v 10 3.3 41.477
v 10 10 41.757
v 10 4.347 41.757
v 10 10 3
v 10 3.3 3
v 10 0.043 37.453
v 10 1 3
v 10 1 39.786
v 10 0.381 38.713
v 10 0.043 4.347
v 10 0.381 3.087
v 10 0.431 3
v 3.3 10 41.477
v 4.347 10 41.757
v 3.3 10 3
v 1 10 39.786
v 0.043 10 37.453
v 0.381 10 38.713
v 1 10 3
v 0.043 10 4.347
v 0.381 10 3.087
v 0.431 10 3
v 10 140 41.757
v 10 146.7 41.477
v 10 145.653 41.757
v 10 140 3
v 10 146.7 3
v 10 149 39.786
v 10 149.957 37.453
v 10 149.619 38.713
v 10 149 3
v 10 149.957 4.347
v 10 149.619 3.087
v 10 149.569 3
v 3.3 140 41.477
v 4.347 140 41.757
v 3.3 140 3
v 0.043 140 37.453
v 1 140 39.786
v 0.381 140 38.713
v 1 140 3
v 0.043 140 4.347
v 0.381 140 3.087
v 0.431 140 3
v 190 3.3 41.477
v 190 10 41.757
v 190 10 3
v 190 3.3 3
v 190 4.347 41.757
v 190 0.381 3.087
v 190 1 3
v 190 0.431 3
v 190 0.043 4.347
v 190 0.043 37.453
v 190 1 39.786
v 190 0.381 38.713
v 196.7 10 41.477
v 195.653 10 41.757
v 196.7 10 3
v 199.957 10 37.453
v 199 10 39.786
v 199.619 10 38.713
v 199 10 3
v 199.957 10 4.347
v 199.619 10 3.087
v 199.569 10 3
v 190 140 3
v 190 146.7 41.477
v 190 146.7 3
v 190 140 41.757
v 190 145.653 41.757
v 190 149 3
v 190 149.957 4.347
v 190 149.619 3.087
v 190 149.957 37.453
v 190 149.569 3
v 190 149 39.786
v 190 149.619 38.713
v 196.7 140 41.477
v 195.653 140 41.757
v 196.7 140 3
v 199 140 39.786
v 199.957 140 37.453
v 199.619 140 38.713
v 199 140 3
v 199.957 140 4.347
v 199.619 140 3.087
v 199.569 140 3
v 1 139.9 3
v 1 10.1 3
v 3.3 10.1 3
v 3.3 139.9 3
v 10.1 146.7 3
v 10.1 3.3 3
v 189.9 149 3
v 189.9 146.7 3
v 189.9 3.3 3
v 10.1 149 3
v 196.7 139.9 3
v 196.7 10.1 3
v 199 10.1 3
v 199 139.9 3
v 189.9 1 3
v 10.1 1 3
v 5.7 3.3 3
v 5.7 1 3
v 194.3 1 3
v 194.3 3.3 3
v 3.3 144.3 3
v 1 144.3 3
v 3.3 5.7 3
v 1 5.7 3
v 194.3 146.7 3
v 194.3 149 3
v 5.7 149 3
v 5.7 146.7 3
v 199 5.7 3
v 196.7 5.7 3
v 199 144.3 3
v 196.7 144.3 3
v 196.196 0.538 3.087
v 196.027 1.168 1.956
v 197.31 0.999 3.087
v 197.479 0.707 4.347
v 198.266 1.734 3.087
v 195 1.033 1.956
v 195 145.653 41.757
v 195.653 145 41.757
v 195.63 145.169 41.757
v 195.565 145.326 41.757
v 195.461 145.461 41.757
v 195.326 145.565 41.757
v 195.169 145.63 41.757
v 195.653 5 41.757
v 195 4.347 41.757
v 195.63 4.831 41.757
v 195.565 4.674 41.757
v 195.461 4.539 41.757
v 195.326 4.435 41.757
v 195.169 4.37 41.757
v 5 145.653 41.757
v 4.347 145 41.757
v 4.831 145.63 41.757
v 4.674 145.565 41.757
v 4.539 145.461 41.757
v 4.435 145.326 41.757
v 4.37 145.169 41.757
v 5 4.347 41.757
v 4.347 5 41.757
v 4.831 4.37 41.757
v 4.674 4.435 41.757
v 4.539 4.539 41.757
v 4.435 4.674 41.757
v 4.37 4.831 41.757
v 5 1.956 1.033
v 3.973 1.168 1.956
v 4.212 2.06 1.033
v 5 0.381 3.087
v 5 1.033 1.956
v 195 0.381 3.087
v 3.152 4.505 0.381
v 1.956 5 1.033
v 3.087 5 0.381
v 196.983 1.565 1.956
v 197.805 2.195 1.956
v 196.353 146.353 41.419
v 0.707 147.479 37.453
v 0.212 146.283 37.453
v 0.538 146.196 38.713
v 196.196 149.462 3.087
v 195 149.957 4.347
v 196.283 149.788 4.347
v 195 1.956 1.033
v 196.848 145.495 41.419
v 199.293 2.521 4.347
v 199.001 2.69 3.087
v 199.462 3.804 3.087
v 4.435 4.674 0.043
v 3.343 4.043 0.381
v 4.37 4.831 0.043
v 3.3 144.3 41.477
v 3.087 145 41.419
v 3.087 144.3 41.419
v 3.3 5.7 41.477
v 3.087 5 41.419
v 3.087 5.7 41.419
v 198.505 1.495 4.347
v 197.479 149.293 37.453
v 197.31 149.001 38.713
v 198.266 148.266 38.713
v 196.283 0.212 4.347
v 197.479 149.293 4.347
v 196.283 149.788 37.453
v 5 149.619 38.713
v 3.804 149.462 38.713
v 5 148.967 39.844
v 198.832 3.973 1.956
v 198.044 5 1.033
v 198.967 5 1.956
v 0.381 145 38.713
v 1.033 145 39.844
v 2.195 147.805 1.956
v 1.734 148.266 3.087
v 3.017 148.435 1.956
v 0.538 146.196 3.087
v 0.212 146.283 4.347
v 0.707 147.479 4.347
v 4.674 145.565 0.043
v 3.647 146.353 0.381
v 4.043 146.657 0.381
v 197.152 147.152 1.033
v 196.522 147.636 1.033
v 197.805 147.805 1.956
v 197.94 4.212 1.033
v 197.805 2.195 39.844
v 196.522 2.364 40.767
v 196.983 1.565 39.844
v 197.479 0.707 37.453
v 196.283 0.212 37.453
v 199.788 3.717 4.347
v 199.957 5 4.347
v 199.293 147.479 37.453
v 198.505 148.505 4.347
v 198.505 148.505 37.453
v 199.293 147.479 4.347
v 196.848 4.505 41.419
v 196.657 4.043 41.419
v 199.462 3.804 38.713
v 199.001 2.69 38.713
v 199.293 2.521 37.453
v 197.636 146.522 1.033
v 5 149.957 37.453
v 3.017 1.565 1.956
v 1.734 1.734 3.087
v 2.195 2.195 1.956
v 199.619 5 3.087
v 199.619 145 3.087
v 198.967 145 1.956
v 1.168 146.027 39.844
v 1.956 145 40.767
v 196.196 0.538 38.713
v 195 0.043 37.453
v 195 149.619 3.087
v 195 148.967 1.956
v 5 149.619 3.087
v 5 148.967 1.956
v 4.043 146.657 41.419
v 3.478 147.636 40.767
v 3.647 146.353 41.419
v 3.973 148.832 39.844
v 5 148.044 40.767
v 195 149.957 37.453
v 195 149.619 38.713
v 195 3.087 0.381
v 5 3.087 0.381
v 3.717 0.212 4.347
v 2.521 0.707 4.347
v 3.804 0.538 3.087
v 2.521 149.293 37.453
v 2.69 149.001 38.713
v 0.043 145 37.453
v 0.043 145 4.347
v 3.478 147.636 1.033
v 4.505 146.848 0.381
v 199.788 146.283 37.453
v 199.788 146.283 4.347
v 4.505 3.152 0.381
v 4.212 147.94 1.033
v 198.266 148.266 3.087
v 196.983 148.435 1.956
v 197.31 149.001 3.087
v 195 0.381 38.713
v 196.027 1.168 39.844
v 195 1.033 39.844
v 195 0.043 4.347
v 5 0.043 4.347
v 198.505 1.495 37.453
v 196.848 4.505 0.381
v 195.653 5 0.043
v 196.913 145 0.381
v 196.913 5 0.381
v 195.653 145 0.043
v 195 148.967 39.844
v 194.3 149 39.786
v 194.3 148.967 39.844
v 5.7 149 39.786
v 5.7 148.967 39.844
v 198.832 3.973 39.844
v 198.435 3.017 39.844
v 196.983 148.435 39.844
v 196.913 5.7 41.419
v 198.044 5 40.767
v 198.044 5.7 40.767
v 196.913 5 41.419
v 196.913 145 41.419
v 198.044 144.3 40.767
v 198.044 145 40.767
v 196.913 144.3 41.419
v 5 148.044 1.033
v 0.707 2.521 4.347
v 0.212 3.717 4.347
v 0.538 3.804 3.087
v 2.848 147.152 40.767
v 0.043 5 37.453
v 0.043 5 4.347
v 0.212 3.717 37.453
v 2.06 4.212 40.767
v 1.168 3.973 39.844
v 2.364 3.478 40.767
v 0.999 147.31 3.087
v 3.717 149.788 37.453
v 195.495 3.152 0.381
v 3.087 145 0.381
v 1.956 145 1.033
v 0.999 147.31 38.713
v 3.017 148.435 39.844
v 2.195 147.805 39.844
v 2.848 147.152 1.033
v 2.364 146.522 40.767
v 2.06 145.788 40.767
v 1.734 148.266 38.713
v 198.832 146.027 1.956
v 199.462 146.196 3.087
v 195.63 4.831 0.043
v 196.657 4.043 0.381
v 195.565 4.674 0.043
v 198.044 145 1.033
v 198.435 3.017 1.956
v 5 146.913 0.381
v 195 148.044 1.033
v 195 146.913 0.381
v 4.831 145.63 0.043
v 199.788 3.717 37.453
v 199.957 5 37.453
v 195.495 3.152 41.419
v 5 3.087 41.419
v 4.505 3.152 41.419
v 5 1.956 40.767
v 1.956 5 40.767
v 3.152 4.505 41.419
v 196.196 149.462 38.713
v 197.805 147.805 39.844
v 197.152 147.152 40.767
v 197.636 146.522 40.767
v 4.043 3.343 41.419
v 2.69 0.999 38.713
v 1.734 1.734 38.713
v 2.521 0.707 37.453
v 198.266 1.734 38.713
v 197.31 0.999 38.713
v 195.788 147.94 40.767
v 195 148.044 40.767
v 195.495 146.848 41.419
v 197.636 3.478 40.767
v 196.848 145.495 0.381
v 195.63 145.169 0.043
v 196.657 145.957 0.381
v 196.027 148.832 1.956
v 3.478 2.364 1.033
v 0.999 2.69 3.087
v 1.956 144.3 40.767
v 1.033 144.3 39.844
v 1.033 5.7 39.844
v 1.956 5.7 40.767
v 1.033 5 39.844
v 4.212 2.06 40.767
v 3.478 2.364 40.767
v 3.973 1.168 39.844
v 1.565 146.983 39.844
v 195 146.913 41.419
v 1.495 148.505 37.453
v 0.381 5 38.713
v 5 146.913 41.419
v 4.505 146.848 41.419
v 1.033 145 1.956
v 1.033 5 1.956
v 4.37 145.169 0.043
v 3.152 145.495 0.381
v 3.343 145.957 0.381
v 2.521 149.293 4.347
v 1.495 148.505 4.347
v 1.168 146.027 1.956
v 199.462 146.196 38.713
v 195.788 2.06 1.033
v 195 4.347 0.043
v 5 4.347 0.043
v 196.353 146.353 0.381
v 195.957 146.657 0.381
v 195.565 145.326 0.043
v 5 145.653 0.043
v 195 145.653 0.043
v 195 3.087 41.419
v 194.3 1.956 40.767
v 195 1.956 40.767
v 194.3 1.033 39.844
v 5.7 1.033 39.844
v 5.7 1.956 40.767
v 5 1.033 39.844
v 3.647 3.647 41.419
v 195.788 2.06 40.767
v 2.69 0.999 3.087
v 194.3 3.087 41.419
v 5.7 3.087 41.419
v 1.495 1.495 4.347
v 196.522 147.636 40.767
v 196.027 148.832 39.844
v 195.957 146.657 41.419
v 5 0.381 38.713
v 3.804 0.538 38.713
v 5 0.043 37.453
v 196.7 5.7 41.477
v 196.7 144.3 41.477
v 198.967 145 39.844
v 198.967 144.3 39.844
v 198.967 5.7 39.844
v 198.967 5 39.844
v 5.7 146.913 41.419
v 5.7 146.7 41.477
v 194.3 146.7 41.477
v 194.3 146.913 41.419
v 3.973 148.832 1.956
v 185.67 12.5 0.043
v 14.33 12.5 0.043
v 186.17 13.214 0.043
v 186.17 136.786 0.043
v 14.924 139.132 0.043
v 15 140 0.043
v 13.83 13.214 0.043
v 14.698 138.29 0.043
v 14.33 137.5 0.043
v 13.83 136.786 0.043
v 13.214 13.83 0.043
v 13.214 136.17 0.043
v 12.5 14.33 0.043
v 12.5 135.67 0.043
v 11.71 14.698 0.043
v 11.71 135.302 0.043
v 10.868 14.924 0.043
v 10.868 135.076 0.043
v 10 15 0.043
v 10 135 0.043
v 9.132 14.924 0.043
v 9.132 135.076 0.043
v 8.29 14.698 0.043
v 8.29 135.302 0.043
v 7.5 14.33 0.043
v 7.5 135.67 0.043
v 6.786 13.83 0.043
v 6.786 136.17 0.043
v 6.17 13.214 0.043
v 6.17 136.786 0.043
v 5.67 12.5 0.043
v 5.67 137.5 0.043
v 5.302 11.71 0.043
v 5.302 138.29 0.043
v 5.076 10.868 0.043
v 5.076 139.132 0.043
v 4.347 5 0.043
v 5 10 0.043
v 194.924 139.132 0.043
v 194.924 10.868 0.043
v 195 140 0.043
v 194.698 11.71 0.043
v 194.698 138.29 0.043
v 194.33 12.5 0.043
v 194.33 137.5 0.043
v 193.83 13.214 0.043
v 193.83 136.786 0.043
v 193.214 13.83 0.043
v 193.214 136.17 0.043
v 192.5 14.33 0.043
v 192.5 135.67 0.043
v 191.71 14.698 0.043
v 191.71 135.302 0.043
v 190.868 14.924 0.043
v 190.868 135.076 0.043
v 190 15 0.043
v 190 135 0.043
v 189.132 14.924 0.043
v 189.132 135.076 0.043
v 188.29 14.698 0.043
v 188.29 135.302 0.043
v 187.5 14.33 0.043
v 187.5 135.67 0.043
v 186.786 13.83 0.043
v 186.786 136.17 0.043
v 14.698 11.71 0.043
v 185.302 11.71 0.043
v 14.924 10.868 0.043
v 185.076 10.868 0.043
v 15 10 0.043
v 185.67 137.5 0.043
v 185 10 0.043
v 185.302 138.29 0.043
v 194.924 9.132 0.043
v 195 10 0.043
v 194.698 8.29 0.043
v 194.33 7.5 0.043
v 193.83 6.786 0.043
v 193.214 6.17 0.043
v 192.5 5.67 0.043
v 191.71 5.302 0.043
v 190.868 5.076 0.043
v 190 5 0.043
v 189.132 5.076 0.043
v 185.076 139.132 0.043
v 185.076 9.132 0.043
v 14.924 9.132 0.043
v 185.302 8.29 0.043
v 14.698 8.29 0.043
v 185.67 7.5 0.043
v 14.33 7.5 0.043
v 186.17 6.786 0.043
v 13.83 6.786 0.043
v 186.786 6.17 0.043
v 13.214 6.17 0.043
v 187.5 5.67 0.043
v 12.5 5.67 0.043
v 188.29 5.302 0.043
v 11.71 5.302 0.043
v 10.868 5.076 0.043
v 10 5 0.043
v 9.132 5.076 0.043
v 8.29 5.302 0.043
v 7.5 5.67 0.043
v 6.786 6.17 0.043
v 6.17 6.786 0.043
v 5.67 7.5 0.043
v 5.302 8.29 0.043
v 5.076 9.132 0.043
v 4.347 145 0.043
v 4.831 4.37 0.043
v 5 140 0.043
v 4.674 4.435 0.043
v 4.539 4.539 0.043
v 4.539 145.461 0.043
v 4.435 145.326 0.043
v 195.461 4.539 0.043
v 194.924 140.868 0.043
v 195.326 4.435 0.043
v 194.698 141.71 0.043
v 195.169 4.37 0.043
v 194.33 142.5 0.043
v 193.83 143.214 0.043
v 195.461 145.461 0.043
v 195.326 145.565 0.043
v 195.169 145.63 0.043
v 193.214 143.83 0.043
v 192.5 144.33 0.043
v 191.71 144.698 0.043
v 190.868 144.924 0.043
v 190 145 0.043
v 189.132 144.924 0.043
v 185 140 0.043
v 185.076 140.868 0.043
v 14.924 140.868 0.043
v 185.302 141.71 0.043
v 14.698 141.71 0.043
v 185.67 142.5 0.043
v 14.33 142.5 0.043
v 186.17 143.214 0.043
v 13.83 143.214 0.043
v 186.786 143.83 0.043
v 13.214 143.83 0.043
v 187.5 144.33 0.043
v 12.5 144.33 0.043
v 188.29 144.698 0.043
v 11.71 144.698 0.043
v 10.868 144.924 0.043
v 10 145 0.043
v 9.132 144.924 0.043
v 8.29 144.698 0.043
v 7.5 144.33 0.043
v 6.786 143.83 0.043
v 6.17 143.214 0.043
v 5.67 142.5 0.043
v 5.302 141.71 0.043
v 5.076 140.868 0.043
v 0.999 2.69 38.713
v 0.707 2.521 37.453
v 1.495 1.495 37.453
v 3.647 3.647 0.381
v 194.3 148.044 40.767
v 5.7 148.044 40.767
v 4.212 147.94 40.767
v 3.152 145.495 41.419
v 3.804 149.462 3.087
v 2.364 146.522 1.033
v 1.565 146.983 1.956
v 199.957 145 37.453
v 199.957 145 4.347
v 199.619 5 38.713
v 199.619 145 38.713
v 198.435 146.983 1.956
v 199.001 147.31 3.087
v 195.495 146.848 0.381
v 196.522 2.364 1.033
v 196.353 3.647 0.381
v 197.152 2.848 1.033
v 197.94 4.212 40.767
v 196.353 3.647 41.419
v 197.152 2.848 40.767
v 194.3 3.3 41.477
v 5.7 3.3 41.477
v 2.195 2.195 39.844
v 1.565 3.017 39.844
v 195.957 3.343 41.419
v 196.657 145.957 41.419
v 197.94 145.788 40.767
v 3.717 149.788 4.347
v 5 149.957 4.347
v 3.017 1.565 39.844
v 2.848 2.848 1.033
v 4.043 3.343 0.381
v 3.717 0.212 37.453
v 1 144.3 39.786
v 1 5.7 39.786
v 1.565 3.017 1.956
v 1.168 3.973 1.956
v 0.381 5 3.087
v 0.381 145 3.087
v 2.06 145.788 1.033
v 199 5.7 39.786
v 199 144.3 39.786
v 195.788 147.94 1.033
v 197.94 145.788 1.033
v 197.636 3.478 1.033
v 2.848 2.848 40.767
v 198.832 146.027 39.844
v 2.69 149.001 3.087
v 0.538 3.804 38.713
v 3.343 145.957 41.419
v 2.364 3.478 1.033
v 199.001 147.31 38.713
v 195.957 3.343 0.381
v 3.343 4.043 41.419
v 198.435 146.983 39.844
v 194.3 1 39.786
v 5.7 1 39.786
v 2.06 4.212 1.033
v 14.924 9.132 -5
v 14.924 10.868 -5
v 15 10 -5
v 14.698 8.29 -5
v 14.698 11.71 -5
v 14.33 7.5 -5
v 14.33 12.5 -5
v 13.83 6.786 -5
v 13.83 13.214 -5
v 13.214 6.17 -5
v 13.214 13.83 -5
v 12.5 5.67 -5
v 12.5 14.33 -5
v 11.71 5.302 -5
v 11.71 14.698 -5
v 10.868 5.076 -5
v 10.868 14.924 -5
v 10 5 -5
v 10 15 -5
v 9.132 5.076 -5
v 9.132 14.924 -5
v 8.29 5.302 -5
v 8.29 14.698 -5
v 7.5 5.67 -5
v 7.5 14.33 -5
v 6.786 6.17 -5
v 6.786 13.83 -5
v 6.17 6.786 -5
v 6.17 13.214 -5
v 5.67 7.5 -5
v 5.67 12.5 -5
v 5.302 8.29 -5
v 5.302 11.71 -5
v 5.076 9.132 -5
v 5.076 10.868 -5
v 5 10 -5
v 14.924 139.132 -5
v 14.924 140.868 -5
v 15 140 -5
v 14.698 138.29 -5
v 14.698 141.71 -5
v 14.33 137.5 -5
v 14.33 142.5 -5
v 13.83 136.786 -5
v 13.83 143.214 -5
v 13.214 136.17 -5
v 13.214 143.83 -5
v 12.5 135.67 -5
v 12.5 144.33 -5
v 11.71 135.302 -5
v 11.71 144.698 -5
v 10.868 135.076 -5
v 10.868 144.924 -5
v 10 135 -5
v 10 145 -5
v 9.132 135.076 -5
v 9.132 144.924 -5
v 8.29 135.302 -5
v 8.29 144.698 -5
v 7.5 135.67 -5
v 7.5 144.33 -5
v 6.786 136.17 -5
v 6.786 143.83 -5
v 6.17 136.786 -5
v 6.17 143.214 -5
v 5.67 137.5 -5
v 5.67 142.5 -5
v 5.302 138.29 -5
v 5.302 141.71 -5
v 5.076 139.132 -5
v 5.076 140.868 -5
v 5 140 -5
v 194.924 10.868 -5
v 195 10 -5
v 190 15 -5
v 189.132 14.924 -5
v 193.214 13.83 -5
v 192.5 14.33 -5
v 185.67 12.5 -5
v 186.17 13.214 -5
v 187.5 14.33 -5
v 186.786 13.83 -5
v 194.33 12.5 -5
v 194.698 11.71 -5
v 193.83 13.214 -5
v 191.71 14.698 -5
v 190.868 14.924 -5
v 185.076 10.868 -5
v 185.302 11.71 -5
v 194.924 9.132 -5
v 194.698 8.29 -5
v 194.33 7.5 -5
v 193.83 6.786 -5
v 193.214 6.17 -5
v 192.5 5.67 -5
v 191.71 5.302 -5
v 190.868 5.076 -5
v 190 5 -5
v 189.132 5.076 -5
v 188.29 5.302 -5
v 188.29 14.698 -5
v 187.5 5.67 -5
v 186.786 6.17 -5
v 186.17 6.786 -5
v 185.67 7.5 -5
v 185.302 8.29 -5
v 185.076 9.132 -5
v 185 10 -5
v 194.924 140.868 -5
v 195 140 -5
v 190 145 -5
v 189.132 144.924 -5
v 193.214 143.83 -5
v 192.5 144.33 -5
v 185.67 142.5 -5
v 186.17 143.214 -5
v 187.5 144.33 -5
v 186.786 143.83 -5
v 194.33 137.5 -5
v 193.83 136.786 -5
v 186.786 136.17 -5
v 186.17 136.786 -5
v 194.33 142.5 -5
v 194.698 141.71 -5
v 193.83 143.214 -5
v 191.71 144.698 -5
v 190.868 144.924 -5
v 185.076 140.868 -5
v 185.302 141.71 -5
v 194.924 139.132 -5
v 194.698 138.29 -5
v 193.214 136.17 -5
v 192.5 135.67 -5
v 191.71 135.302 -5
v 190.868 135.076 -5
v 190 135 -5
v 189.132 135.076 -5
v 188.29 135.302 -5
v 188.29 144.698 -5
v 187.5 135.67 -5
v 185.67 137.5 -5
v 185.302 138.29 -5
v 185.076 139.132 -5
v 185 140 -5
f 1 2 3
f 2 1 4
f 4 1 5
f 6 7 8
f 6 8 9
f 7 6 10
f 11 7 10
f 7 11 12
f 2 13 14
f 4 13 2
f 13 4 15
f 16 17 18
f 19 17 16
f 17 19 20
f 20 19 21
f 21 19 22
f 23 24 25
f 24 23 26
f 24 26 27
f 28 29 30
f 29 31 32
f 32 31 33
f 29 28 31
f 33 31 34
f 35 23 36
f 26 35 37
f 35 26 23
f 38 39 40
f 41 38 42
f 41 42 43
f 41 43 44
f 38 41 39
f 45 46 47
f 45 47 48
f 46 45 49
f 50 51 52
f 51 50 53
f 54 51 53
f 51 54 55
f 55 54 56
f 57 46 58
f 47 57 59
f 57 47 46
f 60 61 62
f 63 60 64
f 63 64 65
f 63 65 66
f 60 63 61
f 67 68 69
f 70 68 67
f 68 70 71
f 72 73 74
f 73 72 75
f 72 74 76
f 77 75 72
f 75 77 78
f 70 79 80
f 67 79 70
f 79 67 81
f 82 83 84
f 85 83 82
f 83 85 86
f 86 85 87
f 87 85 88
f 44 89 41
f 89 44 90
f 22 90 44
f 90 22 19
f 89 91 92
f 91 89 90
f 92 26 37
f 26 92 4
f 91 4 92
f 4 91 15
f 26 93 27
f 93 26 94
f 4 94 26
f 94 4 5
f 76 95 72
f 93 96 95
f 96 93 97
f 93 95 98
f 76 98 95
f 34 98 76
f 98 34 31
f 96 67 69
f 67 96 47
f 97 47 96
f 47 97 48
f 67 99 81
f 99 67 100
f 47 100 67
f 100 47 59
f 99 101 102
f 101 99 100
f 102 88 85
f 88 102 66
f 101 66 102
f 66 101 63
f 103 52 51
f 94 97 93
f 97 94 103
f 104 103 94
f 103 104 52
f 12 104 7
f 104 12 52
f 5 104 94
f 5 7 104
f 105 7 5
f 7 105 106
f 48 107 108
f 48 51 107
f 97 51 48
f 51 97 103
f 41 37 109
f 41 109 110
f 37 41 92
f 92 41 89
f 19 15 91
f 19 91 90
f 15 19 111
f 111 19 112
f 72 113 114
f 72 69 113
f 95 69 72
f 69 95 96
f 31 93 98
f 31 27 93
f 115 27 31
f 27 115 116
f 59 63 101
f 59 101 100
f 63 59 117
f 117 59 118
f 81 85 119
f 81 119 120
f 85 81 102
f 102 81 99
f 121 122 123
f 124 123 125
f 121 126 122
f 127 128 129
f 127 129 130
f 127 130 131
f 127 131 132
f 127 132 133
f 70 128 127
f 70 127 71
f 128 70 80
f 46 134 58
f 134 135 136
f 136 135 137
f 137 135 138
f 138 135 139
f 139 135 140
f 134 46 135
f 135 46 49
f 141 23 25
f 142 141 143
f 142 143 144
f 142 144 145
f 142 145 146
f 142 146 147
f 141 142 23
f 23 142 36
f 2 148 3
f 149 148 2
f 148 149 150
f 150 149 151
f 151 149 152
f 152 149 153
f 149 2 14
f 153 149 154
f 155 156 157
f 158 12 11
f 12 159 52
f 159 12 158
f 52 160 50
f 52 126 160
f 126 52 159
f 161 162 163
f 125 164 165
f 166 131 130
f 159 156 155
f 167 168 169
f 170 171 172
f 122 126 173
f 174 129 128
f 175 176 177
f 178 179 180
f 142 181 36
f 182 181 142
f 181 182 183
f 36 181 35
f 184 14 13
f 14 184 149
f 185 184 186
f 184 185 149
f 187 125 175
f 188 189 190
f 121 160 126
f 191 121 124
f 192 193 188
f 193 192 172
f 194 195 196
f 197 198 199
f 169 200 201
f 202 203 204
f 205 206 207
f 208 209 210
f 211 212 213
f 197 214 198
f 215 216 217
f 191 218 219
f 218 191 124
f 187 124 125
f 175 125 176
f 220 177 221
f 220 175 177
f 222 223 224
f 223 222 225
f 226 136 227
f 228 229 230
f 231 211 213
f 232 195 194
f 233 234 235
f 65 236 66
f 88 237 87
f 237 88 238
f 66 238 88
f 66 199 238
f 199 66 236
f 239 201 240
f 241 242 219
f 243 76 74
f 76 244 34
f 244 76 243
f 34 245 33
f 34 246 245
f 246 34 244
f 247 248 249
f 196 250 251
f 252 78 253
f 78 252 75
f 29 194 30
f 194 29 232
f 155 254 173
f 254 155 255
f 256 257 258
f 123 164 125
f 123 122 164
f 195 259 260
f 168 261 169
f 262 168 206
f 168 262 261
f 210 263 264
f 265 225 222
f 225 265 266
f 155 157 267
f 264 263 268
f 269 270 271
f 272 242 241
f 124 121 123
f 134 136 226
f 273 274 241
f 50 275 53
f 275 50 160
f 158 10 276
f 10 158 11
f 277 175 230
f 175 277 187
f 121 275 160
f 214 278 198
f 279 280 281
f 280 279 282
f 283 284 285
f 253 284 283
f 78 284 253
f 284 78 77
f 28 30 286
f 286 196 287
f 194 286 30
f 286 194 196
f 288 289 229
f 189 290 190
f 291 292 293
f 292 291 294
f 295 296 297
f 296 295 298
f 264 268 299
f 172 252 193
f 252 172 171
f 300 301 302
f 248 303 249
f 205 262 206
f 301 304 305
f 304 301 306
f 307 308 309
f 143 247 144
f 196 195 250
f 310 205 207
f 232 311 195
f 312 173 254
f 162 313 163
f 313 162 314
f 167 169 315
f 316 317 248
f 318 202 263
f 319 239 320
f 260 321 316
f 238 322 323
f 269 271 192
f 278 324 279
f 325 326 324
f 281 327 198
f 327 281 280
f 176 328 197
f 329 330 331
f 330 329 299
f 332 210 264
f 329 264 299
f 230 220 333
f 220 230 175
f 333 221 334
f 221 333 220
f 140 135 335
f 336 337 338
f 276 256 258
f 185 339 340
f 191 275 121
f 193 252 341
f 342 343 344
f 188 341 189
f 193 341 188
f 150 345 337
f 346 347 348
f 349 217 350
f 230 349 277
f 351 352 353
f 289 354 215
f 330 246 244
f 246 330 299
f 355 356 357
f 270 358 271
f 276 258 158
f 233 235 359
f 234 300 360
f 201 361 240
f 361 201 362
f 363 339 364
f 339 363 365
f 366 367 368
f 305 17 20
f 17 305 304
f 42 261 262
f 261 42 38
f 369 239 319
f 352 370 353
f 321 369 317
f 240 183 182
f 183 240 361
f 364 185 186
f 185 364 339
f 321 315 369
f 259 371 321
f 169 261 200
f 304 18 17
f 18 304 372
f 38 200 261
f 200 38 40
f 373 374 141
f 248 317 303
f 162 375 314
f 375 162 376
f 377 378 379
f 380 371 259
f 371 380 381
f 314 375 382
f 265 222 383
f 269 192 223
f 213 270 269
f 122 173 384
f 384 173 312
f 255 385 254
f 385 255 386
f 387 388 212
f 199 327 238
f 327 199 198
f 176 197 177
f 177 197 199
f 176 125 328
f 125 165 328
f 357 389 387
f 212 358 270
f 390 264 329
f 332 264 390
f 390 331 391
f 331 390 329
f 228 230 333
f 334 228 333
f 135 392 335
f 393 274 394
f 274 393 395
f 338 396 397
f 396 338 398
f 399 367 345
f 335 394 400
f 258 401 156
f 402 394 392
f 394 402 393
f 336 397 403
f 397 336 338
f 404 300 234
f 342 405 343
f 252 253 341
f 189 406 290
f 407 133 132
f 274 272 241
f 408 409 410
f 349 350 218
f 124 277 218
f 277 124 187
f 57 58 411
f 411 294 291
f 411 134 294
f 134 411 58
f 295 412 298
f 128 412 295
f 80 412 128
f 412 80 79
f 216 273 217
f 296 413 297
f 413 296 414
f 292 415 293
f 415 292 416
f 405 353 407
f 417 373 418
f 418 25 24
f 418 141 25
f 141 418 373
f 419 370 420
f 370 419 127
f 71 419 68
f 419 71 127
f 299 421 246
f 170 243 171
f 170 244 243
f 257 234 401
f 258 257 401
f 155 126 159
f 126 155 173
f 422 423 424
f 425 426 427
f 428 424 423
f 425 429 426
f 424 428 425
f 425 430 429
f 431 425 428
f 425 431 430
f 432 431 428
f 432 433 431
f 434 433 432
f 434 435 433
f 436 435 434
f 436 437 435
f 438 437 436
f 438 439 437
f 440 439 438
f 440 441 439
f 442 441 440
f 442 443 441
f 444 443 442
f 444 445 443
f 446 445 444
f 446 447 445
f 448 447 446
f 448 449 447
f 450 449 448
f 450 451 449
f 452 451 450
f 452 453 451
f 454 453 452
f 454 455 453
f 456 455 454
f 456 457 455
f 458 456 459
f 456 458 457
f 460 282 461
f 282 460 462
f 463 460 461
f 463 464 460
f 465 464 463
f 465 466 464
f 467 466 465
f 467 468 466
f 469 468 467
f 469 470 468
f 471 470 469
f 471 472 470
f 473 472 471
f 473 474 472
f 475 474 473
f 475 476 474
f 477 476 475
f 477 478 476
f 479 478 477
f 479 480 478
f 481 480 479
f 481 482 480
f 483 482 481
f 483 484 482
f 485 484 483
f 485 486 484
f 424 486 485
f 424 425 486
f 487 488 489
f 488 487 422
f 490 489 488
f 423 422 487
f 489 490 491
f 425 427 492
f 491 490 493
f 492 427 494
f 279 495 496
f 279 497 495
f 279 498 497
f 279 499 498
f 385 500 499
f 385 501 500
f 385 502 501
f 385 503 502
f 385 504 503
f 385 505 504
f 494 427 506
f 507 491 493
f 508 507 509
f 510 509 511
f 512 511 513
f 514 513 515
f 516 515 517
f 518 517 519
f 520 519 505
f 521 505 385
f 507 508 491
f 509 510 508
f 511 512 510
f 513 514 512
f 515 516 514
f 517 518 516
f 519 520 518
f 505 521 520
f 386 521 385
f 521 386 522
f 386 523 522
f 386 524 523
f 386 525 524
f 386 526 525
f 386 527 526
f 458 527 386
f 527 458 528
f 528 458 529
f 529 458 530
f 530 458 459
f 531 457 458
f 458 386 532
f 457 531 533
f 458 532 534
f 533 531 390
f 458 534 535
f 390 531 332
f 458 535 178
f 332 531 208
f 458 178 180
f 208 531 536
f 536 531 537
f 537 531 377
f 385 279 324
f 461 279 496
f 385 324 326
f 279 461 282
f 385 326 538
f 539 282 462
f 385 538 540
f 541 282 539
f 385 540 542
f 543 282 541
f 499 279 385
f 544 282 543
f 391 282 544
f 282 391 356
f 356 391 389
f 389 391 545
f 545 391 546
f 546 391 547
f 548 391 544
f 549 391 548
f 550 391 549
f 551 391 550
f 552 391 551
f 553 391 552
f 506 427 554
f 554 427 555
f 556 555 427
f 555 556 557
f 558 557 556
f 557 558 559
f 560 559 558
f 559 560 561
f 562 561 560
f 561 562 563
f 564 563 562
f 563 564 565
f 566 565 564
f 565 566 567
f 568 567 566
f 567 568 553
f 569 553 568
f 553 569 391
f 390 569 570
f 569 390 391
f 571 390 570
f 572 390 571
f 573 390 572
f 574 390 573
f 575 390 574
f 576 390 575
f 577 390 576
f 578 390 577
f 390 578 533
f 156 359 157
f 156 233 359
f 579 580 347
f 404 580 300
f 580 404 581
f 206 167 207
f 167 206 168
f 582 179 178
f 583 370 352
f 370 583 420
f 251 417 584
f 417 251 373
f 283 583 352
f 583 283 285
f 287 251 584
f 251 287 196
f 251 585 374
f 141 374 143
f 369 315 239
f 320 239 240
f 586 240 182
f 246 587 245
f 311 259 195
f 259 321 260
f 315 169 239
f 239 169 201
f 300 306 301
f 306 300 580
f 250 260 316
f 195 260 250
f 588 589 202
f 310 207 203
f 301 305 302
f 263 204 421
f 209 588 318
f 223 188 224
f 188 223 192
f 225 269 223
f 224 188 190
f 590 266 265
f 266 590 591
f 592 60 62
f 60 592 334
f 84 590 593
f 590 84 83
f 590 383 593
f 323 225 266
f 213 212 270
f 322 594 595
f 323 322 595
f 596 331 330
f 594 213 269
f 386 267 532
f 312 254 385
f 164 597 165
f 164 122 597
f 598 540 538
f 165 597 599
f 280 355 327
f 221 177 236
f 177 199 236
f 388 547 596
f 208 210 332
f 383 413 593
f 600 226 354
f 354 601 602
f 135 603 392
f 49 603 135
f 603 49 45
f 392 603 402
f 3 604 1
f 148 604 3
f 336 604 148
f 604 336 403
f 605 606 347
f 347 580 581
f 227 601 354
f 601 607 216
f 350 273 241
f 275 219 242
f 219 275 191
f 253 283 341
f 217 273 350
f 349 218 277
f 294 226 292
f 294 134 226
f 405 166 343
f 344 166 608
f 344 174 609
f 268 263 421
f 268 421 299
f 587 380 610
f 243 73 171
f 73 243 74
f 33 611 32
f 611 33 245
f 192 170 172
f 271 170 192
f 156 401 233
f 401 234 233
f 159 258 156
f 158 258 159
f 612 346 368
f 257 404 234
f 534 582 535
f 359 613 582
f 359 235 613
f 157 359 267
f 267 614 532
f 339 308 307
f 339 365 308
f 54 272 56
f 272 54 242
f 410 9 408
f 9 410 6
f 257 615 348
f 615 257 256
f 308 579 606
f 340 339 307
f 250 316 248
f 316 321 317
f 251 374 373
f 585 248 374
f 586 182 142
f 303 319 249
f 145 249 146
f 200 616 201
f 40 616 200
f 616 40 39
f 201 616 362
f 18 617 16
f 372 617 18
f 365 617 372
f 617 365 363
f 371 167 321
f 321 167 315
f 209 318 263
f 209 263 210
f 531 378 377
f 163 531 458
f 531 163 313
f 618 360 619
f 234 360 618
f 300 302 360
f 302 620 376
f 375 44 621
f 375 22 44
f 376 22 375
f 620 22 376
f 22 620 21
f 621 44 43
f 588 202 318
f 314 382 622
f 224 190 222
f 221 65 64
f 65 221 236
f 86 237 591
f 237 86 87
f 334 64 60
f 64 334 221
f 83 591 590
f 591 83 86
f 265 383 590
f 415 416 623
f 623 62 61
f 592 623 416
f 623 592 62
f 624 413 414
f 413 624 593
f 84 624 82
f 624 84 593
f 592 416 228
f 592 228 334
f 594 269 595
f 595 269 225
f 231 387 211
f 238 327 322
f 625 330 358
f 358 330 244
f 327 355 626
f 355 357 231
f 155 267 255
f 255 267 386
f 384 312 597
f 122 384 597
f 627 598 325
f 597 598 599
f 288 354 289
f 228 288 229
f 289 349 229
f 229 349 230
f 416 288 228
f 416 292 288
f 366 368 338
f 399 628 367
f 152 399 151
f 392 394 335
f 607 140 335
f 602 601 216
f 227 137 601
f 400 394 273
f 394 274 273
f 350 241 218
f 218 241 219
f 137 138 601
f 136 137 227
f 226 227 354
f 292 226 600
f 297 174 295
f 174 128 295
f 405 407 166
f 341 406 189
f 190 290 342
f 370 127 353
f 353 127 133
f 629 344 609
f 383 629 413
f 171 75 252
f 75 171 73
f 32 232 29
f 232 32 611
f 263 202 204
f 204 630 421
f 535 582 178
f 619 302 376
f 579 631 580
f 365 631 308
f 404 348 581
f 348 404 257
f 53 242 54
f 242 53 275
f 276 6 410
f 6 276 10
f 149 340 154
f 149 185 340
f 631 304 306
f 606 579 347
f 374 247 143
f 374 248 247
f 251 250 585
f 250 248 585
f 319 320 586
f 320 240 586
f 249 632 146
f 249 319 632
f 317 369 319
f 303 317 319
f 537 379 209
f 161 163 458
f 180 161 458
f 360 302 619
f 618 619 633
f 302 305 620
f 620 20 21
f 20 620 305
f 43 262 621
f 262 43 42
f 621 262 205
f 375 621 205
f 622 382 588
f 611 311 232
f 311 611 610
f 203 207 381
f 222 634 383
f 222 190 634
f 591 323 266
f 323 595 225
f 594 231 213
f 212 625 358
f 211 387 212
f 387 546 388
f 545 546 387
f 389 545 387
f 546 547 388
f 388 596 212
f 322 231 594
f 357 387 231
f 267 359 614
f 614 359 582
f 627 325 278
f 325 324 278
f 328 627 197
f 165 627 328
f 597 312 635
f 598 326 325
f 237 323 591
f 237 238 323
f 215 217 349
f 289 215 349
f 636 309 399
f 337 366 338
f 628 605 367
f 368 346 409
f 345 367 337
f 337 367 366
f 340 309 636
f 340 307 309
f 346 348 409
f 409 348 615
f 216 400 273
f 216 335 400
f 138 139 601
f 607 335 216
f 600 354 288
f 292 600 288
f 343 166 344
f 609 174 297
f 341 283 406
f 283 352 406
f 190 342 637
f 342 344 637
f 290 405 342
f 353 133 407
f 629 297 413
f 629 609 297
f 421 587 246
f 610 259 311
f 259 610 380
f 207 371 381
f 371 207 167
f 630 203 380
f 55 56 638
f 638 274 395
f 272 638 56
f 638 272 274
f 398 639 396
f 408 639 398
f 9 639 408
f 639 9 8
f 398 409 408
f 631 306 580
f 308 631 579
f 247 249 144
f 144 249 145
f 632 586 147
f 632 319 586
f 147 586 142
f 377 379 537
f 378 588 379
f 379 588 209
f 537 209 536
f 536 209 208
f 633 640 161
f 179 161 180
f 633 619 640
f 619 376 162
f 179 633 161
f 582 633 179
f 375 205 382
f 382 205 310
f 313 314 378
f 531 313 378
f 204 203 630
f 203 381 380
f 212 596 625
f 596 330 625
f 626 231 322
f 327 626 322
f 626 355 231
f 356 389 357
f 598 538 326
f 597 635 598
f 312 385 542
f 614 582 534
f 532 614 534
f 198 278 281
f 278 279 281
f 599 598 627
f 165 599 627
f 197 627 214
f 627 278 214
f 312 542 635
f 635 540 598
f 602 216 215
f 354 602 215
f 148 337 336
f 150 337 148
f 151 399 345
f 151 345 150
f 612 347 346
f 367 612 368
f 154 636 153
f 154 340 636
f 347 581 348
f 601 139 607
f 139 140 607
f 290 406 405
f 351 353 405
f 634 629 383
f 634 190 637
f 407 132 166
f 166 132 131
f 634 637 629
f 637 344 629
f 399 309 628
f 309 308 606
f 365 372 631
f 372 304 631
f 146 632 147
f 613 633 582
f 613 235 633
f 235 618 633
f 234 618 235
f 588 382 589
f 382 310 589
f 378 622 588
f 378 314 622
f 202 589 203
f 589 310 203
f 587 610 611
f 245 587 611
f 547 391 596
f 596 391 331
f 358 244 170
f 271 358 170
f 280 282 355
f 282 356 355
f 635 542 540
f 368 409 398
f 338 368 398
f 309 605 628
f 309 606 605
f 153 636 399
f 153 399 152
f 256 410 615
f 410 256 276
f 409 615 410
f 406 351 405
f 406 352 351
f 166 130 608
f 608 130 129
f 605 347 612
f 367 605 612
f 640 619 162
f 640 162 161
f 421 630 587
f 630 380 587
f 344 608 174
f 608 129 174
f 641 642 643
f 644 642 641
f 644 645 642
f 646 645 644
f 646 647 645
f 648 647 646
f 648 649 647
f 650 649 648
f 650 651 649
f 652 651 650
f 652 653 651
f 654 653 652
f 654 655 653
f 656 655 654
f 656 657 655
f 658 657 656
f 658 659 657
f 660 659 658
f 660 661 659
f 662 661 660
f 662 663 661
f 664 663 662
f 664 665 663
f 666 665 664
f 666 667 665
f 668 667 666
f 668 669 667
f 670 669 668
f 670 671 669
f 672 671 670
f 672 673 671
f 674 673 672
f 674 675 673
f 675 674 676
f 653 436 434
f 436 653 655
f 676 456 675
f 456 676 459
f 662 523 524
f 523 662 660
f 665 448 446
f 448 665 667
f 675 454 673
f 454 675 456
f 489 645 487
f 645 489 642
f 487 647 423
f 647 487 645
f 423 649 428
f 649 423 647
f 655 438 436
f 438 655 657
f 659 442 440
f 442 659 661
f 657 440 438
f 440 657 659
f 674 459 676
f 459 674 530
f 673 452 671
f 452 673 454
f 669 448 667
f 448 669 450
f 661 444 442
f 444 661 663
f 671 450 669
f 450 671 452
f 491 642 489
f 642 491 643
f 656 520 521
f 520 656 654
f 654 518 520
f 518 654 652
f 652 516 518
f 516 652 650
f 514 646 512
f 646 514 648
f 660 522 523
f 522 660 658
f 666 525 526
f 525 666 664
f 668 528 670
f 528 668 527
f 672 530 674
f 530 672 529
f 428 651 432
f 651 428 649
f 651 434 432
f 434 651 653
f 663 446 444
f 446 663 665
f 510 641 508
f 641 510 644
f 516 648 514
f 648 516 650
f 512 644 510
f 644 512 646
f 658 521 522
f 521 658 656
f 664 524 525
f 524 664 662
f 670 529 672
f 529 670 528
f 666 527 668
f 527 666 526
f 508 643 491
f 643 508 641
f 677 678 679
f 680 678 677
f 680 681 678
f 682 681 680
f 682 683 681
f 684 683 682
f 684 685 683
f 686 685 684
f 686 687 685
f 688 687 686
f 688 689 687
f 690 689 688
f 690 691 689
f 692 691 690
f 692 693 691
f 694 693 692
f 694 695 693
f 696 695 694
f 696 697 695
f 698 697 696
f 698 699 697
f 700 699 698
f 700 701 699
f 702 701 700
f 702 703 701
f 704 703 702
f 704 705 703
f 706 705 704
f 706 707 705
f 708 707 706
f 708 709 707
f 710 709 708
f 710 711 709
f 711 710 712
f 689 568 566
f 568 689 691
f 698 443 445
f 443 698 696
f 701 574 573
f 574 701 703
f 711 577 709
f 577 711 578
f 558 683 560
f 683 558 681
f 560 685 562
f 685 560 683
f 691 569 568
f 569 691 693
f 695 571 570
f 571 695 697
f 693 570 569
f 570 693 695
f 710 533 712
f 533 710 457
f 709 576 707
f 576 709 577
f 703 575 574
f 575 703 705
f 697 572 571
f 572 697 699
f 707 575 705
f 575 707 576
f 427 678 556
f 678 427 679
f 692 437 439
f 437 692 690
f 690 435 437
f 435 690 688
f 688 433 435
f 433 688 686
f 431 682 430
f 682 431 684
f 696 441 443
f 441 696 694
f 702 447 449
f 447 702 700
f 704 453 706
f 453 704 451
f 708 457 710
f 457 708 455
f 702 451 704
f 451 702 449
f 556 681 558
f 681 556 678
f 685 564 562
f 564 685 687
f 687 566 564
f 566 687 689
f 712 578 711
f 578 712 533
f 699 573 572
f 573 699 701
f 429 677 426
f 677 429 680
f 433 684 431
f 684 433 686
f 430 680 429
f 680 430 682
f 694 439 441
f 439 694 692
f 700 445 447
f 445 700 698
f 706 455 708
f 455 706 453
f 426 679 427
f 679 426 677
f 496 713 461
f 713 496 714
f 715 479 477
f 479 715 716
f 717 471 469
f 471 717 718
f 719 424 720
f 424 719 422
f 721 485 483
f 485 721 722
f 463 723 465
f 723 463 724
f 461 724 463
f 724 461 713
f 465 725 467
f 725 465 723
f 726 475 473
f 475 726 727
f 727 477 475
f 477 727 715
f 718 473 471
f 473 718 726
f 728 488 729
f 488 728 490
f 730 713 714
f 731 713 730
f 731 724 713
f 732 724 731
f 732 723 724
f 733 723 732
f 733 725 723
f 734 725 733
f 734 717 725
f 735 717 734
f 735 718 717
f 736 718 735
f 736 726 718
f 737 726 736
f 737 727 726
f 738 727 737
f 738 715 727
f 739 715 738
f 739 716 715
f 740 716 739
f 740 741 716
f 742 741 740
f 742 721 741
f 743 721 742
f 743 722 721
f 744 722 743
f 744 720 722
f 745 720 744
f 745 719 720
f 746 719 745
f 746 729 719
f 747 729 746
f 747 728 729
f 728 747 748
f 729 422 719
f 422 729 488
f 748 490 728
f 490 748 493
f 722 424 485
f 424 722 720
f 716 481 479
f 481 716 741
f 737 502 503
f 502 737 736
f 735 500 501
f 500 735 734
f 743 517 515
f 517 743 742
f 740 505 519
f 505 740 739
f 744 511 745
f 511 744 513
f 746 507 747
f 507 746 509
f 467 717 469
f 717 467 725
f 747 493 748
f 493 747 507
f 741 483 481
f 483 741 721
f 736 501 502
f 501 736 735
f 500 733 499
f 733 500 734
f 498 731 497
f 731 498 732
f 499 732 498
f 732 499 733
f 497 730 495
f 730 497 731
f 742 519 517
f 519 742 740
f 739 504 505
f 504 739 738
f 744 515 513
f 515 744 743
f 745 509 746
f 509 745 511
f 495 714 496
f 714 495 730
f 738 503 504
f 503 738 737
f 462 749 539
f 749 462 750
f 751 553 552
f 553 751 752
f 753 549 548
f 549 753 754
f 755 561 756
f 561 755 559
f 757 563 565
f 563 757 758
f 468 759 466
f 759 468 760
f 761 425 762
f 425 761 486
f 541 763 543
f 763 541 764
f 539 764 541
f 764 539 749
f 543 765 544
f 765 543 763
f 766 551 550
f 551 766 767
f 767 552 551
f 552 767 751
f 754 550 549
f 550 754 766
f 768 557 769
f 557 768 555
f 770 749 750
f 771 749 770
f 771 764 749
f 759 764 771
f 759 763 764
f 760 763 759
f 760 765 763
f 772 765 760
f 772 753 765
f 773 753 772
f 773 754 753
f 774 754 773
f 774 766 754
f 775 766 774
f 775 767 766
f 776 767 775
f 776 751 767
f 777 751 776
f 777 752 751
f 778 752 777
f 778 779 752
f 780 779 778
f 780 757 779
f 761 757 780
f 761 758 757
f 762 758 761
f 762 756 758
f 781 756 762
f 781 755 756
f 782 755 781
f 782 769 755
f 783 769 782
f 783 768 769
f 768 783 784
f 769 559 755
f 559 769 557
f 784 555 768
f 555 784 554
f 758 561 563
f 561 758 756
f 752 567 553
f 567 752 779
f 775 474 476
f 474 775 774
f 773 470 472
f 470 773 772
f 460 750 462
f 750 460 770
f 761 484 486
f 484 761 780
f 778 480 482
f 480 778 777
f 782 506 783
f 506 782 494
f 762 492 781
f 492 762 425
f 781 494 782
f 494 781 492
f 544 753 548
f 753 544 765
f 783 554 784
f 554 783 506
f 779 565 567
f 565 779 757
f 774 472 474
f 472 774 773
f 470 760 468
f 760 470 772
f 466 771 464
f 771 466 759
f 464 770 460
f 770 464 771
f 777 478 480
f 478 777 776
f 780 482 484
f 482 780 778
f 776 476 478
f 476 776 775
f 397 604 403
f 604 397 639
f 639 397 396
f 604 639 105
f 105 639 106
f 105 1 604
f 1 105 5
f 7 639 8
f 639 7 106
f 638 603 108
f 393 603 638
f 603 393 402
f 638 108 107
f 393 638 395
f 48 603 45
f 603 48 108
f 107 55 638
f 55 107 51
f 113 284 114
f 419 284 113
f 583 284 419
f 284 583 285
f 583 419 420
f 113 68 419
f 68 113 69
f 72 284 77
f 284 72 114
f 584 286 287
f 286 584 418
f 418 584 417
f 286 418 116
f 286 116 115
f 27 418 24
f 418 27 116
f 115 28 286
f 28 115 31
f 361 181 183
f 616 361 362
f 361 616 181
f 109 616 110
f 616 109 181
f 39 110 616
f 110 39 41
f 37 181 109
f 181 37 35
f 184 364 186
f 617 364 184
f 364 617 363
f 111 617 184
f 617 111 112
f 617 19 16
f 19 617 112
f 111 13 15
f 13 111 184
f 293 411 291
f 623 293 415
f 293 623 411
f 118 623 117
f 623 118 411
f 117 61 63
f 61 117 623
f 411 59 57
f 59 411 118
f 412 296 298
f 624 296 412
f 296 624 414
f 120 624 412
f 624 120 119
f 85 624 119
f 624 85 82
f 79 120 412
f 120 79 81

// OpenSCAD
// file: params.scad
// =====================================================================
//  params.scad  -  Kabelbox, frei konfigurierbar (einzige Wahrheitsquelle)
//  Koordinaten: x=Breite, y=Tiefe (Front y=0, Rück y=box_d), z=Höhe.
//  4 Eckpfosten (flush) mit Nuten -> 4 entnehmbare Voronoi-Wände;
//  glatter Schiebedeckel von hinten; Füße; alles bündig.
// =====================================================================

/* [Maße] */
box_w = 200;   // Breite X (mm)
box_d = 150;   // Tiefe Y (mm)
box_h = 41.8;  // Höhe Z (mm, ohne Füße) -> 35 mm nutzbar (Boden bis Deckel)

/* [Kabellöcher je Wand] */
//  none = keins | left/center/right = Position (unten offener Schlitz)
cable_front = "none";   // [none:keins, left:links, center:mitte, right:rechts]
cable_back  = "right";  // [none:keins, left:links, center:mitte, right:rechts]  (1. Kiste)
cable_left  = "none";   // [none:keins, left:links, center:mitte, right:rechts]
cable_right = "right";  // [none:keins, left:links, center:mitte, right:rechts]  (1. Kiste)

// ---- Struktur -------------------------------------------------------
wall_t     = 3.0;   // Wandstärke (Außenfläche bündig)
floor_t    = 3.0;   // Bodenstärke
fillet_r   = 5.0;   // Kantenrundung R5 (wie Holder)
post_sz    = 10.0;  // Eckpfosten-Bein (X=Y), flush in der Ecke
foot_r     = 5.0;   // Fuß
foot_h     = 5.0;
foot_inset = 5.0;

// ---- Feder & Nut: Wand <-> Pfosten ----------------------------------
//  Feder (Rippe) sitzt hinter einer Front-Skin des Pfostens -> flush & in
//  Querrichtung gefangen (Prinzip wie Holder-Rückwand).
front_skin = 1.0;   // Pfosten-Skin vor der Feder (Außenseite)
tongue_d   = 4.0;   // Federtiefe in den Pfosten (Längsrichtung der Wand)
rail_clear = 0.3;   // Spiel Feder<->Nut
rail_lead  = 1.2;   // 45°-Einführfase unten an der Feder

// ---- Deckel (glatt, von hinten eingeschoben) ------------------------
//  Vorne/links/rechts: Lippe übergreift den Deckelrand (3-seitig gefangen);
//  Rückwand niedriger -> Deckel läuft drüber, schließt hinten bündig ab.
lid_t      = 2.5; // Deckeldicke
lid_lip_t  = 1.0; // Höhe/Überdeckung der Lippe über dem Deckelrand
lid_ov     = 3.0; // Lippen-Überstand nach innen (Deckel-Eingriff)
lid_clear  = 0.3; // Spiel Deckel

// ---- Kabelloch (unten offen, wie Zahnbürstenhalter) -----------------
cable_w = 12;   // Schlitzbreite (X entlang der Wand)
cable_h = 12;   // Oberkante des Schlitzes über dem Boden (Z)

// ---- Voronoi (Wand-Relief) ------------------------------------------
voro_seed  = 11;
voro_cell  = 14;    // Zellabstand Wand-Relief
voro_strut = 1.8;   // Stegbreite
relief_h   = 1.2;   // Reliefhöhe (erhaben)

// ---- abgeleitete Maße / Helfer (NICHT ändern) -----------------------
// lichte Spannweiten zwischen den Pfosten
span_w = box_w - 2*post_sz;   // Front/Rück-Wandlänge (X)
span_d = box_d - 2*post_sz;   // Links/Rechts-Wandlänge (Y)
wall_h = box_h - floor_t;     // Wandhöhe über dem Boden

$fn = 32;
// main file
// =====================================================================
//  box.scad  -  Rahmen der Kabelbox (bleibt fest):
//   gerundeter Boden + 4 Eckpfosten (flush) mit je 2 senkrechten Wand-Nuten,
//   4 Füße. Nuten liegen INNERHALB der Pfosten (Front-Skin) -> flush.
// =====================================================================
include <params.scad>

module rounded_block(w, d, h, r) {
    minkowski() {
        translate([r, r, r]) cube([w - 2*r, d - 2*r, h - 2*r]);
        sphere(r = r, $fn = 24);
    }
}

// Platziert local (x=Länge 0..L, y=Dicke 0..wall_t [Außen y=0], z=Höhe 0..wall_h)
// auf die jeweilige Seite. L: front/back=span_w, left/right=span_d.
module place_wall(side) {
    if      (side == "front") translate([post_sz, 0, floor_t]) children();
    else if (side == "right") translate([box_w, post_sz, floor_t]) rotate([0,0,90]) children();
    else if (side == "back")  translate([box_w - post_sz, box_d, floor_t]) rotate([0,0,180]) children();
    else if (side == "left")  translate([0, box_d - post_sz, floor_t]) rotate([0,0,-90]) children();
}
function wall_len(side) = (side == "front" || side == "back") ? span_w : span_d;

// 4 Eck-Säulen (volle Höhe) – werden mit rounded_block geschnitten (runde Ecke)
module corner_cols() {
    for (cx = [0, 1], cy = [0, 1])
        translate([cx*(box_w - post_sz), cy*(box_d - post_sz), 0])
            cube([post_sz, post_sz, box_h + 1]);
}

// Nut-Schneider in local Wand-Koordinaten (schneidet die Pfosten an beiden Enden).
// Feder sitzt y∈[front_skin, wall_t]; Skin y∈[0,front_skin] bleibt -> flush.
module groove_cutter(L) {
    gy = wall_t + rail_clear - front_skin;       // Nuttiefe in Y
    for (e = [0, 1]) {
        gx = (e == 0) ? -tongue_d - rail_clear : L - 0.1;
        translate([gx, front_skin, 0])
            cube([tongue_d + rail_clear + 0.1, gy, wall_h + box_h]);
    }
}

module feet() {
    insets = foot_inset + foot_r;
    for (px = [insets, box_w - insets], py = [insets, box_d - insets])
        translate([px, py, -foot_h]) cylinder(h = foot_h + 0.5, r = foot_r, $fn = 36);
}

// Rundungs-Hülle (Top sauber runden, Relief/Füße nicht beschneiden)
module round_env() {
    e = 1.0;
    minkowski() {
        translate([fillet_r - e, fillet_r - e, fillet_r - foot_h - 1])
            cube([box_w - 2*fillet_r + 2*e, box_d - 2*fillet_r + 2*e,
                  box_h - 2*fillet_r + foot_h + 1]);
        sphere(r = fillet_r, $fn = 24);
    }
}

module box() {
    intersection() {
        difference() {
            union() {
                intersection() {
                    rounded_block(box_w, box_d, box_h, fillet_r);
                    union() {
                        cube([box_w, box_d, floor_t]);   // Boden
                        corner_cols();                    // 4 Pfosten
                    }
                }
                feet();
            }
            for (s = ["front", "back", "left", "right"])
                place_wall(s) groove_cutter(wall_len(s));
        }
        round_env();
    }
}

box();
